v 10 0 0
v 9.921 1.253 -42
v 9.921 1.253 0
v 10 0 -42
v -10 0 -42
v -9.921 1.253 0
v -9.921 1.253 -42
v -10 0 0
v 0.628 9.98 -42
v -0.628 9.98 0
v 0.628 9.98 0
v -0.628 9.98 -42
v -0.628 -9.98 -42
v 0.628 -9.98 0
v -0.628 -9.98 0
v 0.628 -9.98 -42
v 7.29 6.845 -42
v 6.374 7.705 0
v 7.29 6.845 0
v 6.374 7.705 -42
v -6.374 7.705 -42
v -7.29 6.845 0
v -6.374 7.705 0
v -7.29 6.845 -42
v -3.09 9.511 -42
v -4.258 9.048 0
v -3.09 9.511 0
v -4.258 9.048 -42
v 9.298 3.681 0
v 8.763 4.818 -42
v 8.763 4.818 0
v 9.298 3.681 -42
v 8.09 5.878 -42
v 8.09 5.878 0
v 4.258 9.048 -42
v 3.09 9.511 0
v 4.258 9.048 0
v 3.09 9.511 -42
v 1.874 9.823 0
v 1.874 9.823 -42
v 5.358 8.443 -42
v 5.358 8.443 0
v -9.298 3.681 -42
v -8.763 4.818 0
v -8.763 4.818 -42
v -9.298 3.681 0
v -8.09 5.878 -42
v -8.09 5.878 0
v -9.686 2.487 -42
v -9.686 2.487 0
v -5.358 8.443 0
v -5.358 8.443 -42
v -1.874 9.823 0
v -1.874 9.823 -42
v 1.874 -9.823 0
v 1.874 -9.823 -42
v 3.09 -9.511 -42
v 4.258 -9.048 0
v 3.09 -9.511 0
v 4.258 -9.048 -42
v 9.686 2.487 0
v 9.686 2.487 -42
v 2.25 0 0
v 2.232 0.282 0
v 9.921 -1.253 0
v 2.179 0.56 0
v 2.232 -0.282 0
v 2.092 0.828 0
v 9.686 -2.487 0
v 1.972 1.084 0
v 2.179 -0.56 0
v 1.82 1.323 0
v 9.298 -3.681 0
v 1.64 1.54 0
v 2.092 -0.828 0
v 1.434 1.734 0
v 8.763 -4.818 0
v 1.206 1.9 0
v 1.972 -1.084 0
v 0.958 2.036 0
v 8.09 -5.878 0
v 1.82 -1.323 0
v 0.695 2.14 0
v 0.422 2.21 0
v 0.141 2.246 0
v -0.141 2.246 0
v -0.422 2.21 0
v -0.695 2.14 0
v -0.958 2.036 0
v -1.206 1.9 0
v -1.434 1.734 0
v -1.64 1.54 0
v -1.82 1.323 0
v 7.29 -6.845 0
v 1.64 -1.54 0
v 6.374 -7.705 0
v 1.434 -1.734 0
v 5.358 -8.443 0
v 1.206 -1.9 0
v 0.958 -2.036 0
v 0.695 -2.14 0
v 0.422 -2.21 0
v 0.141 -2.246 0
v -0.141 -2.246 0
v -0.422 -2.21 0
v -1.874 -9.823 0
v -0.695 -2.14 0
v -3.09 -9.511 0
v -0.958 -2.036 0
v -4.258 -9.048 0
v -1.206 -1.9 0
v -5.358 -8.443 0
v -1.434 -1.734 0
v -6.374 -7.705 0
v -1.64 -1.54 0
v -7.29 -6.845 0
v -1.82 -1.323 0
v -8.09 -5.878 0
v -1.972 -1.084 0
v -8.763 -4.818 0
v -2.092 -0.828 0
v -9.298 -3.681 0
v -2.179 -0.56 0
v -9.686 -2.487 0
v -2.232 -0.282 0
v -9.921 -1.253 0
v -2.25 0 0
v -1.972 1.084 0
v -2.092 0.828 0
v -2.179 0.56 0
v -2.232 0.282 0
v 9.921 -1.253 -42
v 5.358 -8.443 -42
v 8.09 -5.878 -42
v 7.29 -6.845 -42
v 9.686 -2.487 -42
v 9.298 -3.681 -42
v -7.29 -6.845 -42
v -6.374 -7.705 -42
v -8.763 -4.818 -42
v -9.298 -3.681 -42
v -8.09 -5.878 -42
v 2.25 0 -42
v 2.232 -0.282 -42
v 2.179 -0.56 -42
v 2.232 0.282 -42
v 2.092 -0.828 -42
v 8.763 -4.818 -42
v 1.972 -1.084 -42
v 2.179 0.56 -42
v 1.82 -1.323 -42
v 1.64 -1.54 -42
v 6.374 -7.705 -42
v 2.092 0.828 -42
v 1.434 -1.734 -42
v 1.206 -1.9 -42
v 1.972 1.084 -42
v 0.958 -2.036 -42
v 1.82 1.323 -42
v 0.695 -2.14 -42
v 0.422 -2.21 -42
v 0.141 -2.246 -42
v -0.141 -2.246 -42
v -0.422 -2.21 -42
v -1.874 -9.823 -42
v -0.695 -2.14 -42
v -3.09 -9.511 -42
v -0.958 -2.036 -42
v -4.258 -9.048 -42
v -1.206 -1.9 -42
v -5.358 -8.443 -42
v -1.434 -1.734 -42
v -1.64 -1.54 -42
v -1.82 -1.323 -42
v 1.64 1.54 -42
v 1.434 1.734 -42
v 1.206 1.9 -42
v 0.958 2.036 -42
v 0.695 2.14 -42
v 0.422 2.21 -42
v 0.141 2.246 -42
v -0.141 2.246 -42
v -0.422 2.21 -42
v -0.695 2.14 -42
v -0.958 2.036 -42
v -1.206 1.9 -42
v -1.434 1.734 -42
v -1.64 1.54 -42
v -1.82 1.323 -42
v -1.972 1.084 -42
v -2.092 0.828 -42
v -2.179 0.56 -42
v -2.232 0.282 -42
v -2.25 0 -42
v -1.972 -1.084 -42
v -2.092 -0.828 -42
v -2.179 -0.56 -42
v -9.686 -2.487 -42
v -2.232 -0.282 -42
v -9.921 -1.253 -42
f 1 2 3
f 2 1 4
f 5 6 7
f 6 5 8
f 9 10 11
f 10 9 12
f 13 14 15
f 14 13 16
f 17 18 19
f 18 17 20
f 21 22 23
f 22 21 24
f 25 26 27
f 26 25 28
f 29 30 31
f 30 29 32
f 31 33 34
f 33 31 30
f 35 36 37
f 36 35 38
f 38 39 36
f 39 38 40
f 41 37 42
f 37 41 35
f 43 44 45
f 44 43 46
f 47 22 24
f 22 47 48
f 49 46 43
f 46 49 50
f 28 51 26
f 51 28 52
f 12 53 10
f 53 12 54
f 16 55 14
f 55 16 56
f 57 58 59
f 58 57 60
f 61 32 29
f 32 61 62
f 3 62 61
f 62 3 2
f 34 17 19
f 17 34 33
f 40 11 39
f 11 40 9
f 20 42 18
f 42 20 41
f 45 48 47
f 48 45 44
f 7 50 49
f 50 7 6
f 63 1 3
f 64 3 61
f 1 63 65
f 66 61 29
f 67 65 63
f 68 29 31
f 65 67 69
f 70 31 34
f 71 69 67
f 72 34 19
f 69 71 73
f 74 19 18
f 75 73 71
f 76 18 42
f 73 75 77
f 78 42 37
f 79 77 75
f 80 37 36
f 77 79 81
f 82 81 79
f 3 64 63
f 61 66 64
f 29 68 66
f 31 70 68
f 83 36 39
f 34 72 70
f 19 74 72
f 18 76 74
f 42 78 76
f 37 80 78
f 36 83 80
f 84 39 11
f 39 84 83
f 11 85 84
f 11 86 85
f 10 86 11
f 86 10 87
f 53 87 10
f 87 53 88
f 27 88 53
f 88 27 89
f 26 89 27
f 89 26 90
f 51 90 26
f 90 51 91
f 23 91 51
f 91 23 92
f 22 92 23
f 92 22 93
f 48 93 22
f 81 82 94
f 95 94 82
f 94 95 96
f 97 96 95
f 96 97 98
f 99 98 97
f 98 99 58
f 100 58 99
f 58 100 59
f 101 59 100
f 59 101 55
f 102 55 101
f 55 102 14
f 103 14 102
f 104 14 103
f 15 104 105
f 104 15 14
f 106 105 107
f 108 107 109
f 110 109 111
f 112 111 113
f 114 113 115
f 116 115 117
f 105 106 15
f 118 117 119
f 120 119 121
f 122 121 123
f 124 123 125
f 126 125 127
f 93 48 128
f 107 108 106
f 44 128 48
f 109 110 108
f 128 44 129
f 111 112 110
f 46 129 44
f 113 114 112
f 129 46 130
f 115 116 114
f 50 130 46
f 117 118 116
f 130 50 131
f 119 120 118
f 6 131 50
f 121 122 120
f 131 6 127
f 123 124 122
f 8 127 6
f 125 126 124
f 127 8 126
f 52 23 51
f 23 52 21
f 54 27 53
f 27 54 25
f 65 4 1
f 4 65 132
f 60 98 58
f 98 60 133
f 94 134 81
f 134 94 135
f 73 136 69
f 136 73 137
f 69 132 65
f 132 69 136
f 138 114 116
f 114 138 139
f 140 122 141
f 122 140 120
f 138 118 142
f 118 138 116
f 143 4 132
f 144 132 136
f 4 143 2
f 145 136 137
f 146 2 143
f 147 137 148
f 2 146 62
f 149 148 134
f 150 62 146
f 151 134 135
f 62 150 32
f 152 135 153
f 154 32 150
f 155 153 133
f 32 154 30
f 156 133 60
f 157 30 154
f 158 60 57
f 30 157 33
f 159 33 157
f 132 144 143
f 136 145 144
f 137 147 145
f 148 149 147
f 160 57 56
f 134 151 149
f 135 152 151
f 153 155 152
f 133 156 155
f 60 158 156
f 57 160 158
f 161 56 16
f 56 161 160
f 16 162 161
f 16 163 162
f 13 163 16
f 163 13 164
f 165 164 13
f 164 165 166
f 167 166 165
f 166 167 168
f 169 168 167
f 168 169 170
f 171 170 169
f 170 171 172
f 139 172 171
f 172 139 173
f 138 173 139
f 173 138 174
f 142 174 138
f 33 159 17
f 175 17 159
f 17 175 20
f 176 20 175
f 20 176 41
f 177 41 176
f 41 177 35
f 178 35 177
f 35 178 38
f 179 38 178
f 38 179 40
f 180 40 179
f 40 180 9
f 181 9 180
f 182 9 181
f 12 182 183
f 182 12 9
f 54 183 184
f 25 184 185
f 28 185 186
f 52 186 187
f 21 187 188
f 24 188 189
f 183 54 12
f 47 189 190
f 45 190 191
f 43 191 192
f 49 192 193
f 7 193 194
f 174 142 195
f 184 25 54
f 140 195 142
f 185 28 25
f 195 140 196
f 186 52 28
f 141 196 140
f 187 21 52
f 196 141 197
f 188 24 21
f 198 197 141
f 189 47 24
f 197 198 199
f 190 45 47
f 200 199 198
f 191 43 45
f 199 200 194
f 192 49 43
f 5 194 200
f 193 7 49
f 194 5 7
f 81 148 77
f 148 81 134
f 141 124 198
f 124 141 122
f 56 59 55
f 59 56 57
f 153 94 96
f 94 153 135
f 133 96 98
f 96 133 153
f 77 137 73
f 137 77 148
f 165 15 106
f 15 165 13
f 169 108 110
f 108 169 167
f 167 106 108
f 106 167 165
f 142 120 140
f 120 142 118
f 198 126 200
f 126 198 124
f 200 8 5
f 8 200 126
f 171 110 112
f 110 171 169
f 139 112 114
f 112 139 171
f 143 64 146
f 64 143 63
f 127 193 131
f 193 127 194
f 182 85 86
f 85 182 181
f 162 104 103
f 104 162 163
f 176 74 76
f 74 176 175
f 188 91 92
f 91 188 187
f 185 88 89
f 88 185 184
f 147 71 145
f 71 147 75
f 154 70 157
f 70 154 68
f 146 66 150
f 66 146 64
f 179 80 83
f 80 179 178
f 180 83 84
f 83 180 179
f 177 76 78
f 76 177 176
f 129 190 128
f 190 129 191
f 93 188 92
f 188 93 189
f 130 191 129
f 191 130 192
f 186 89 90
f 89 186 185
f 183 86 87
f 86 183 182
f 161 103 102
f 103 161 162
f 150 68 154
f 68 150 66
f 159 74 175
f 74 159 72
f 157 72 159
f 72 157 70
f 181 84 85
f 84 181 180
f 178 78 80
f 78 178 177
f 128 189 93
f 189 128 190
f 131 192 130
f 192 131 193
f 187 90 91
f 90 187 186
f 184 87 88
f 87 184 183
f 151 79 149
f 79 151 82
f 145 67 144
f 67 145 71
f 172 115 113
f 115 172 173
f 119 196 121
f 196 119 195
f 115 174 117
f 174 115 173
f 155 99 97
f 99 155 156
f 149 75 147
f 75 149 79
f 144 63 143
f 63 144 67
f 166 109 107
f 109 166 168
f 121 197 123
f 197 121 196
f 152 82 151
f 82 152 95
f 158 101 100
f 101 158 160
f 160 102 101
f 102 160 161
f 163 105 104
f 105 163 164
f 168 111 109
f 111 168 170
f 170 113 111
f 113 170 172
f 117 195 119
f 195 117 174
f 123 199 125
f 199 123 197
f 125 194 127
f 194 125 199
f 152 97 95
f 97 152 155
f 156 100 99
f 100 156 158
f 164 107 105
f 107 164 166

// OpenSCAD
$fn = 50;


difference() {
	union() {
		translate(v = [0, 0, -42.0000000000]) {
			cylinder(h = 42, r = 10.0000000000);
		}
		cylinder(h = 0, r = 16.0000000000);
	}
	union() {
		#translate(v = [0, 0, -42]) {
			cylinder(h = 42, r = 2.2500000000);
		}
	}
}
